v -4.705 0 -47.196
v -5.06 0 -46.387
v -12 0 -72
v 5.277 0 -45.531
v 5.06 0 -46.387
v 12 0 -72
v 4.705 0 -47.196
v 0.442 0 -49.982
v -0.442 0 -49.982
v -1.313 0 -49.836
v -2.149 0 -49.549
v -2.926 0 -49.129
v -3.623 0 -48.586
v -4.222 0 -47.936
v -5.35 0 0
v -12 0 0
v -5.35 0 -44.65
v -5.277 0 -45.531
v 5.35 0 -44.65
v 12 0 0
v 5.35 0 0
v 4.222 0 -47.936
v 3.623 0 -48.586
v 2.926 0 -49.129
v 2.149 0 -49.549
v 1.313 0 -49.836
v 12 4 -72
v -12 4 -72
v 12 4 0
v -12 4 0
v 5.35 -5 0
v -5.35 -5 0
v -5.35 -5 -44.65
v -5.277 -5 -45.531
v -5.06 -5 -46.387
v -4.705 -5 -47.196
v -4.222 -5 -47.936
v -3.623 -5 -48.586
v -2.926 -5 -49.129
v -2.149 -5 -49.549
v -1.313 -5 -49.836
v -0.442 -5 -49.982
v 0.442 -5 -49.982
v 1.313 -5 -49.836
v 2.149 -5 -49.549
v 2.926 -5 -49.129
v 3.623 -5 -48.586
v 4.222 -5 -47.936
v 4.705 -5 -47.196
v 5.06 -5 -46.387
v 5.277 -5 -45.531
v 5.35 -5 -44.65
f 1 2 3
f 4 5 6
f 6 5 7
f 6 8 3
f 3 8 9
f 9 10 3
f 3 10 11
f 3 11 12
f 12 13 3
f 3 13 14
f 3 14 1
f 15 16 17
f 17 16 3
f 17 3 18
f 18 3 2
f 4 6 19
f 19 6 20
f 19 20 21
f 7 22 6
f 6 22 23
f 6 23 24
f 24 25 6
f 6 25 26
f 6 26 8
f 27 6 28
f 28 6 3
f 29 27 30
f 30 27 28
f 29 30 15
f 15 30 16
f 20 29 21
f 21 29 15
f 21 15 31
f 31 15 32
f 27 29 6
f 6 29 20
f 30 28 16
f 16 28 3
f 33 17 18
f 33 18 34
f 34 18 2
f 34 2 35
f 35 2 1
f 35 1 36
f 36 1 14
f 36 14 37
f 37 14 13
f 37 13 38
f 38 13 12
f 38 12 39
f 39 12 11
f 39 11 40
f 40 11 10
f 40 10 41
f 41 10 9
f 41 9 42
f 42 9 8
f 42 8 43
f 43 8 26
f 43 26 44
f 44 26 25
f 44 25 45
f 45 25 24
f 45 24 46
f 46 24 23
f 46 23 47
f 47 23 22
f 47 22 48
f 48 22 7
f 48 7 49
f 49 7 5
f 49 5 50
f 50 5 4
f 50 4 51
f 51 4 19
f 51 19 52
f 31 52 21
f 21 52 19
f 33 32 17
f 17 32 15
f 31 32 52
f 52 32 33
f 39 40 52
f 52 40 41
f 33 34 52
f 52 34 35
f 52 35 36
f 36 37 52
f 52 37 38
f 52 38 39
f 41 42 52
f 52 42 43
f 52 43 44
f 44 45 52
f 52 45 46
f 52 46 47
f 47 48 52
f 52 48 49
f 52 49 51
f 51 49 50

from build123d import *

# Parameters (mm, degrees)
SKETCH1_W           = 72
SKETCH1_H           = 4
BOSS_EXTRUDE1_DEPTH = 12
BOSS_EXTRUDE2_DEPTH = 5


with BuildPart() as part:
    # Sketch1 → Boss-Extrude1 (new, symmetric)
    with BuildSketch(Plane(origin=(0, 0, 0), x_dir=(0, 0, -1), z_dir=(1, 0, 0))):
        with Locations((36, 2)):
            Rectangle(SKETCH1_W, SKETCH1_H)
    extrude(amount=BOSS_EXTRUDE1_DEPTH, both=True)

    # Sketch2 → Boss-Extrude2 (add)
    with BuildSketch(Plane(origin=(0, 0, 0), x_dir=(1, 0, 0), z_dir=(0, 1, 0))):
        with BuildLine():
            Line((-5.35, 44.65), (-5.35, 0))
            Line((-5.35, 0), (5.35, 0))
            Line((5.35, 0), (5.35, 44.65))
            ThreePointArc((5.35, 44.65), (0, 50), (-5.35, 44.65))
        make_face()
    extrude(amount=-BOSS_EXTRUDE2_DEPTH)


solid = part.part
